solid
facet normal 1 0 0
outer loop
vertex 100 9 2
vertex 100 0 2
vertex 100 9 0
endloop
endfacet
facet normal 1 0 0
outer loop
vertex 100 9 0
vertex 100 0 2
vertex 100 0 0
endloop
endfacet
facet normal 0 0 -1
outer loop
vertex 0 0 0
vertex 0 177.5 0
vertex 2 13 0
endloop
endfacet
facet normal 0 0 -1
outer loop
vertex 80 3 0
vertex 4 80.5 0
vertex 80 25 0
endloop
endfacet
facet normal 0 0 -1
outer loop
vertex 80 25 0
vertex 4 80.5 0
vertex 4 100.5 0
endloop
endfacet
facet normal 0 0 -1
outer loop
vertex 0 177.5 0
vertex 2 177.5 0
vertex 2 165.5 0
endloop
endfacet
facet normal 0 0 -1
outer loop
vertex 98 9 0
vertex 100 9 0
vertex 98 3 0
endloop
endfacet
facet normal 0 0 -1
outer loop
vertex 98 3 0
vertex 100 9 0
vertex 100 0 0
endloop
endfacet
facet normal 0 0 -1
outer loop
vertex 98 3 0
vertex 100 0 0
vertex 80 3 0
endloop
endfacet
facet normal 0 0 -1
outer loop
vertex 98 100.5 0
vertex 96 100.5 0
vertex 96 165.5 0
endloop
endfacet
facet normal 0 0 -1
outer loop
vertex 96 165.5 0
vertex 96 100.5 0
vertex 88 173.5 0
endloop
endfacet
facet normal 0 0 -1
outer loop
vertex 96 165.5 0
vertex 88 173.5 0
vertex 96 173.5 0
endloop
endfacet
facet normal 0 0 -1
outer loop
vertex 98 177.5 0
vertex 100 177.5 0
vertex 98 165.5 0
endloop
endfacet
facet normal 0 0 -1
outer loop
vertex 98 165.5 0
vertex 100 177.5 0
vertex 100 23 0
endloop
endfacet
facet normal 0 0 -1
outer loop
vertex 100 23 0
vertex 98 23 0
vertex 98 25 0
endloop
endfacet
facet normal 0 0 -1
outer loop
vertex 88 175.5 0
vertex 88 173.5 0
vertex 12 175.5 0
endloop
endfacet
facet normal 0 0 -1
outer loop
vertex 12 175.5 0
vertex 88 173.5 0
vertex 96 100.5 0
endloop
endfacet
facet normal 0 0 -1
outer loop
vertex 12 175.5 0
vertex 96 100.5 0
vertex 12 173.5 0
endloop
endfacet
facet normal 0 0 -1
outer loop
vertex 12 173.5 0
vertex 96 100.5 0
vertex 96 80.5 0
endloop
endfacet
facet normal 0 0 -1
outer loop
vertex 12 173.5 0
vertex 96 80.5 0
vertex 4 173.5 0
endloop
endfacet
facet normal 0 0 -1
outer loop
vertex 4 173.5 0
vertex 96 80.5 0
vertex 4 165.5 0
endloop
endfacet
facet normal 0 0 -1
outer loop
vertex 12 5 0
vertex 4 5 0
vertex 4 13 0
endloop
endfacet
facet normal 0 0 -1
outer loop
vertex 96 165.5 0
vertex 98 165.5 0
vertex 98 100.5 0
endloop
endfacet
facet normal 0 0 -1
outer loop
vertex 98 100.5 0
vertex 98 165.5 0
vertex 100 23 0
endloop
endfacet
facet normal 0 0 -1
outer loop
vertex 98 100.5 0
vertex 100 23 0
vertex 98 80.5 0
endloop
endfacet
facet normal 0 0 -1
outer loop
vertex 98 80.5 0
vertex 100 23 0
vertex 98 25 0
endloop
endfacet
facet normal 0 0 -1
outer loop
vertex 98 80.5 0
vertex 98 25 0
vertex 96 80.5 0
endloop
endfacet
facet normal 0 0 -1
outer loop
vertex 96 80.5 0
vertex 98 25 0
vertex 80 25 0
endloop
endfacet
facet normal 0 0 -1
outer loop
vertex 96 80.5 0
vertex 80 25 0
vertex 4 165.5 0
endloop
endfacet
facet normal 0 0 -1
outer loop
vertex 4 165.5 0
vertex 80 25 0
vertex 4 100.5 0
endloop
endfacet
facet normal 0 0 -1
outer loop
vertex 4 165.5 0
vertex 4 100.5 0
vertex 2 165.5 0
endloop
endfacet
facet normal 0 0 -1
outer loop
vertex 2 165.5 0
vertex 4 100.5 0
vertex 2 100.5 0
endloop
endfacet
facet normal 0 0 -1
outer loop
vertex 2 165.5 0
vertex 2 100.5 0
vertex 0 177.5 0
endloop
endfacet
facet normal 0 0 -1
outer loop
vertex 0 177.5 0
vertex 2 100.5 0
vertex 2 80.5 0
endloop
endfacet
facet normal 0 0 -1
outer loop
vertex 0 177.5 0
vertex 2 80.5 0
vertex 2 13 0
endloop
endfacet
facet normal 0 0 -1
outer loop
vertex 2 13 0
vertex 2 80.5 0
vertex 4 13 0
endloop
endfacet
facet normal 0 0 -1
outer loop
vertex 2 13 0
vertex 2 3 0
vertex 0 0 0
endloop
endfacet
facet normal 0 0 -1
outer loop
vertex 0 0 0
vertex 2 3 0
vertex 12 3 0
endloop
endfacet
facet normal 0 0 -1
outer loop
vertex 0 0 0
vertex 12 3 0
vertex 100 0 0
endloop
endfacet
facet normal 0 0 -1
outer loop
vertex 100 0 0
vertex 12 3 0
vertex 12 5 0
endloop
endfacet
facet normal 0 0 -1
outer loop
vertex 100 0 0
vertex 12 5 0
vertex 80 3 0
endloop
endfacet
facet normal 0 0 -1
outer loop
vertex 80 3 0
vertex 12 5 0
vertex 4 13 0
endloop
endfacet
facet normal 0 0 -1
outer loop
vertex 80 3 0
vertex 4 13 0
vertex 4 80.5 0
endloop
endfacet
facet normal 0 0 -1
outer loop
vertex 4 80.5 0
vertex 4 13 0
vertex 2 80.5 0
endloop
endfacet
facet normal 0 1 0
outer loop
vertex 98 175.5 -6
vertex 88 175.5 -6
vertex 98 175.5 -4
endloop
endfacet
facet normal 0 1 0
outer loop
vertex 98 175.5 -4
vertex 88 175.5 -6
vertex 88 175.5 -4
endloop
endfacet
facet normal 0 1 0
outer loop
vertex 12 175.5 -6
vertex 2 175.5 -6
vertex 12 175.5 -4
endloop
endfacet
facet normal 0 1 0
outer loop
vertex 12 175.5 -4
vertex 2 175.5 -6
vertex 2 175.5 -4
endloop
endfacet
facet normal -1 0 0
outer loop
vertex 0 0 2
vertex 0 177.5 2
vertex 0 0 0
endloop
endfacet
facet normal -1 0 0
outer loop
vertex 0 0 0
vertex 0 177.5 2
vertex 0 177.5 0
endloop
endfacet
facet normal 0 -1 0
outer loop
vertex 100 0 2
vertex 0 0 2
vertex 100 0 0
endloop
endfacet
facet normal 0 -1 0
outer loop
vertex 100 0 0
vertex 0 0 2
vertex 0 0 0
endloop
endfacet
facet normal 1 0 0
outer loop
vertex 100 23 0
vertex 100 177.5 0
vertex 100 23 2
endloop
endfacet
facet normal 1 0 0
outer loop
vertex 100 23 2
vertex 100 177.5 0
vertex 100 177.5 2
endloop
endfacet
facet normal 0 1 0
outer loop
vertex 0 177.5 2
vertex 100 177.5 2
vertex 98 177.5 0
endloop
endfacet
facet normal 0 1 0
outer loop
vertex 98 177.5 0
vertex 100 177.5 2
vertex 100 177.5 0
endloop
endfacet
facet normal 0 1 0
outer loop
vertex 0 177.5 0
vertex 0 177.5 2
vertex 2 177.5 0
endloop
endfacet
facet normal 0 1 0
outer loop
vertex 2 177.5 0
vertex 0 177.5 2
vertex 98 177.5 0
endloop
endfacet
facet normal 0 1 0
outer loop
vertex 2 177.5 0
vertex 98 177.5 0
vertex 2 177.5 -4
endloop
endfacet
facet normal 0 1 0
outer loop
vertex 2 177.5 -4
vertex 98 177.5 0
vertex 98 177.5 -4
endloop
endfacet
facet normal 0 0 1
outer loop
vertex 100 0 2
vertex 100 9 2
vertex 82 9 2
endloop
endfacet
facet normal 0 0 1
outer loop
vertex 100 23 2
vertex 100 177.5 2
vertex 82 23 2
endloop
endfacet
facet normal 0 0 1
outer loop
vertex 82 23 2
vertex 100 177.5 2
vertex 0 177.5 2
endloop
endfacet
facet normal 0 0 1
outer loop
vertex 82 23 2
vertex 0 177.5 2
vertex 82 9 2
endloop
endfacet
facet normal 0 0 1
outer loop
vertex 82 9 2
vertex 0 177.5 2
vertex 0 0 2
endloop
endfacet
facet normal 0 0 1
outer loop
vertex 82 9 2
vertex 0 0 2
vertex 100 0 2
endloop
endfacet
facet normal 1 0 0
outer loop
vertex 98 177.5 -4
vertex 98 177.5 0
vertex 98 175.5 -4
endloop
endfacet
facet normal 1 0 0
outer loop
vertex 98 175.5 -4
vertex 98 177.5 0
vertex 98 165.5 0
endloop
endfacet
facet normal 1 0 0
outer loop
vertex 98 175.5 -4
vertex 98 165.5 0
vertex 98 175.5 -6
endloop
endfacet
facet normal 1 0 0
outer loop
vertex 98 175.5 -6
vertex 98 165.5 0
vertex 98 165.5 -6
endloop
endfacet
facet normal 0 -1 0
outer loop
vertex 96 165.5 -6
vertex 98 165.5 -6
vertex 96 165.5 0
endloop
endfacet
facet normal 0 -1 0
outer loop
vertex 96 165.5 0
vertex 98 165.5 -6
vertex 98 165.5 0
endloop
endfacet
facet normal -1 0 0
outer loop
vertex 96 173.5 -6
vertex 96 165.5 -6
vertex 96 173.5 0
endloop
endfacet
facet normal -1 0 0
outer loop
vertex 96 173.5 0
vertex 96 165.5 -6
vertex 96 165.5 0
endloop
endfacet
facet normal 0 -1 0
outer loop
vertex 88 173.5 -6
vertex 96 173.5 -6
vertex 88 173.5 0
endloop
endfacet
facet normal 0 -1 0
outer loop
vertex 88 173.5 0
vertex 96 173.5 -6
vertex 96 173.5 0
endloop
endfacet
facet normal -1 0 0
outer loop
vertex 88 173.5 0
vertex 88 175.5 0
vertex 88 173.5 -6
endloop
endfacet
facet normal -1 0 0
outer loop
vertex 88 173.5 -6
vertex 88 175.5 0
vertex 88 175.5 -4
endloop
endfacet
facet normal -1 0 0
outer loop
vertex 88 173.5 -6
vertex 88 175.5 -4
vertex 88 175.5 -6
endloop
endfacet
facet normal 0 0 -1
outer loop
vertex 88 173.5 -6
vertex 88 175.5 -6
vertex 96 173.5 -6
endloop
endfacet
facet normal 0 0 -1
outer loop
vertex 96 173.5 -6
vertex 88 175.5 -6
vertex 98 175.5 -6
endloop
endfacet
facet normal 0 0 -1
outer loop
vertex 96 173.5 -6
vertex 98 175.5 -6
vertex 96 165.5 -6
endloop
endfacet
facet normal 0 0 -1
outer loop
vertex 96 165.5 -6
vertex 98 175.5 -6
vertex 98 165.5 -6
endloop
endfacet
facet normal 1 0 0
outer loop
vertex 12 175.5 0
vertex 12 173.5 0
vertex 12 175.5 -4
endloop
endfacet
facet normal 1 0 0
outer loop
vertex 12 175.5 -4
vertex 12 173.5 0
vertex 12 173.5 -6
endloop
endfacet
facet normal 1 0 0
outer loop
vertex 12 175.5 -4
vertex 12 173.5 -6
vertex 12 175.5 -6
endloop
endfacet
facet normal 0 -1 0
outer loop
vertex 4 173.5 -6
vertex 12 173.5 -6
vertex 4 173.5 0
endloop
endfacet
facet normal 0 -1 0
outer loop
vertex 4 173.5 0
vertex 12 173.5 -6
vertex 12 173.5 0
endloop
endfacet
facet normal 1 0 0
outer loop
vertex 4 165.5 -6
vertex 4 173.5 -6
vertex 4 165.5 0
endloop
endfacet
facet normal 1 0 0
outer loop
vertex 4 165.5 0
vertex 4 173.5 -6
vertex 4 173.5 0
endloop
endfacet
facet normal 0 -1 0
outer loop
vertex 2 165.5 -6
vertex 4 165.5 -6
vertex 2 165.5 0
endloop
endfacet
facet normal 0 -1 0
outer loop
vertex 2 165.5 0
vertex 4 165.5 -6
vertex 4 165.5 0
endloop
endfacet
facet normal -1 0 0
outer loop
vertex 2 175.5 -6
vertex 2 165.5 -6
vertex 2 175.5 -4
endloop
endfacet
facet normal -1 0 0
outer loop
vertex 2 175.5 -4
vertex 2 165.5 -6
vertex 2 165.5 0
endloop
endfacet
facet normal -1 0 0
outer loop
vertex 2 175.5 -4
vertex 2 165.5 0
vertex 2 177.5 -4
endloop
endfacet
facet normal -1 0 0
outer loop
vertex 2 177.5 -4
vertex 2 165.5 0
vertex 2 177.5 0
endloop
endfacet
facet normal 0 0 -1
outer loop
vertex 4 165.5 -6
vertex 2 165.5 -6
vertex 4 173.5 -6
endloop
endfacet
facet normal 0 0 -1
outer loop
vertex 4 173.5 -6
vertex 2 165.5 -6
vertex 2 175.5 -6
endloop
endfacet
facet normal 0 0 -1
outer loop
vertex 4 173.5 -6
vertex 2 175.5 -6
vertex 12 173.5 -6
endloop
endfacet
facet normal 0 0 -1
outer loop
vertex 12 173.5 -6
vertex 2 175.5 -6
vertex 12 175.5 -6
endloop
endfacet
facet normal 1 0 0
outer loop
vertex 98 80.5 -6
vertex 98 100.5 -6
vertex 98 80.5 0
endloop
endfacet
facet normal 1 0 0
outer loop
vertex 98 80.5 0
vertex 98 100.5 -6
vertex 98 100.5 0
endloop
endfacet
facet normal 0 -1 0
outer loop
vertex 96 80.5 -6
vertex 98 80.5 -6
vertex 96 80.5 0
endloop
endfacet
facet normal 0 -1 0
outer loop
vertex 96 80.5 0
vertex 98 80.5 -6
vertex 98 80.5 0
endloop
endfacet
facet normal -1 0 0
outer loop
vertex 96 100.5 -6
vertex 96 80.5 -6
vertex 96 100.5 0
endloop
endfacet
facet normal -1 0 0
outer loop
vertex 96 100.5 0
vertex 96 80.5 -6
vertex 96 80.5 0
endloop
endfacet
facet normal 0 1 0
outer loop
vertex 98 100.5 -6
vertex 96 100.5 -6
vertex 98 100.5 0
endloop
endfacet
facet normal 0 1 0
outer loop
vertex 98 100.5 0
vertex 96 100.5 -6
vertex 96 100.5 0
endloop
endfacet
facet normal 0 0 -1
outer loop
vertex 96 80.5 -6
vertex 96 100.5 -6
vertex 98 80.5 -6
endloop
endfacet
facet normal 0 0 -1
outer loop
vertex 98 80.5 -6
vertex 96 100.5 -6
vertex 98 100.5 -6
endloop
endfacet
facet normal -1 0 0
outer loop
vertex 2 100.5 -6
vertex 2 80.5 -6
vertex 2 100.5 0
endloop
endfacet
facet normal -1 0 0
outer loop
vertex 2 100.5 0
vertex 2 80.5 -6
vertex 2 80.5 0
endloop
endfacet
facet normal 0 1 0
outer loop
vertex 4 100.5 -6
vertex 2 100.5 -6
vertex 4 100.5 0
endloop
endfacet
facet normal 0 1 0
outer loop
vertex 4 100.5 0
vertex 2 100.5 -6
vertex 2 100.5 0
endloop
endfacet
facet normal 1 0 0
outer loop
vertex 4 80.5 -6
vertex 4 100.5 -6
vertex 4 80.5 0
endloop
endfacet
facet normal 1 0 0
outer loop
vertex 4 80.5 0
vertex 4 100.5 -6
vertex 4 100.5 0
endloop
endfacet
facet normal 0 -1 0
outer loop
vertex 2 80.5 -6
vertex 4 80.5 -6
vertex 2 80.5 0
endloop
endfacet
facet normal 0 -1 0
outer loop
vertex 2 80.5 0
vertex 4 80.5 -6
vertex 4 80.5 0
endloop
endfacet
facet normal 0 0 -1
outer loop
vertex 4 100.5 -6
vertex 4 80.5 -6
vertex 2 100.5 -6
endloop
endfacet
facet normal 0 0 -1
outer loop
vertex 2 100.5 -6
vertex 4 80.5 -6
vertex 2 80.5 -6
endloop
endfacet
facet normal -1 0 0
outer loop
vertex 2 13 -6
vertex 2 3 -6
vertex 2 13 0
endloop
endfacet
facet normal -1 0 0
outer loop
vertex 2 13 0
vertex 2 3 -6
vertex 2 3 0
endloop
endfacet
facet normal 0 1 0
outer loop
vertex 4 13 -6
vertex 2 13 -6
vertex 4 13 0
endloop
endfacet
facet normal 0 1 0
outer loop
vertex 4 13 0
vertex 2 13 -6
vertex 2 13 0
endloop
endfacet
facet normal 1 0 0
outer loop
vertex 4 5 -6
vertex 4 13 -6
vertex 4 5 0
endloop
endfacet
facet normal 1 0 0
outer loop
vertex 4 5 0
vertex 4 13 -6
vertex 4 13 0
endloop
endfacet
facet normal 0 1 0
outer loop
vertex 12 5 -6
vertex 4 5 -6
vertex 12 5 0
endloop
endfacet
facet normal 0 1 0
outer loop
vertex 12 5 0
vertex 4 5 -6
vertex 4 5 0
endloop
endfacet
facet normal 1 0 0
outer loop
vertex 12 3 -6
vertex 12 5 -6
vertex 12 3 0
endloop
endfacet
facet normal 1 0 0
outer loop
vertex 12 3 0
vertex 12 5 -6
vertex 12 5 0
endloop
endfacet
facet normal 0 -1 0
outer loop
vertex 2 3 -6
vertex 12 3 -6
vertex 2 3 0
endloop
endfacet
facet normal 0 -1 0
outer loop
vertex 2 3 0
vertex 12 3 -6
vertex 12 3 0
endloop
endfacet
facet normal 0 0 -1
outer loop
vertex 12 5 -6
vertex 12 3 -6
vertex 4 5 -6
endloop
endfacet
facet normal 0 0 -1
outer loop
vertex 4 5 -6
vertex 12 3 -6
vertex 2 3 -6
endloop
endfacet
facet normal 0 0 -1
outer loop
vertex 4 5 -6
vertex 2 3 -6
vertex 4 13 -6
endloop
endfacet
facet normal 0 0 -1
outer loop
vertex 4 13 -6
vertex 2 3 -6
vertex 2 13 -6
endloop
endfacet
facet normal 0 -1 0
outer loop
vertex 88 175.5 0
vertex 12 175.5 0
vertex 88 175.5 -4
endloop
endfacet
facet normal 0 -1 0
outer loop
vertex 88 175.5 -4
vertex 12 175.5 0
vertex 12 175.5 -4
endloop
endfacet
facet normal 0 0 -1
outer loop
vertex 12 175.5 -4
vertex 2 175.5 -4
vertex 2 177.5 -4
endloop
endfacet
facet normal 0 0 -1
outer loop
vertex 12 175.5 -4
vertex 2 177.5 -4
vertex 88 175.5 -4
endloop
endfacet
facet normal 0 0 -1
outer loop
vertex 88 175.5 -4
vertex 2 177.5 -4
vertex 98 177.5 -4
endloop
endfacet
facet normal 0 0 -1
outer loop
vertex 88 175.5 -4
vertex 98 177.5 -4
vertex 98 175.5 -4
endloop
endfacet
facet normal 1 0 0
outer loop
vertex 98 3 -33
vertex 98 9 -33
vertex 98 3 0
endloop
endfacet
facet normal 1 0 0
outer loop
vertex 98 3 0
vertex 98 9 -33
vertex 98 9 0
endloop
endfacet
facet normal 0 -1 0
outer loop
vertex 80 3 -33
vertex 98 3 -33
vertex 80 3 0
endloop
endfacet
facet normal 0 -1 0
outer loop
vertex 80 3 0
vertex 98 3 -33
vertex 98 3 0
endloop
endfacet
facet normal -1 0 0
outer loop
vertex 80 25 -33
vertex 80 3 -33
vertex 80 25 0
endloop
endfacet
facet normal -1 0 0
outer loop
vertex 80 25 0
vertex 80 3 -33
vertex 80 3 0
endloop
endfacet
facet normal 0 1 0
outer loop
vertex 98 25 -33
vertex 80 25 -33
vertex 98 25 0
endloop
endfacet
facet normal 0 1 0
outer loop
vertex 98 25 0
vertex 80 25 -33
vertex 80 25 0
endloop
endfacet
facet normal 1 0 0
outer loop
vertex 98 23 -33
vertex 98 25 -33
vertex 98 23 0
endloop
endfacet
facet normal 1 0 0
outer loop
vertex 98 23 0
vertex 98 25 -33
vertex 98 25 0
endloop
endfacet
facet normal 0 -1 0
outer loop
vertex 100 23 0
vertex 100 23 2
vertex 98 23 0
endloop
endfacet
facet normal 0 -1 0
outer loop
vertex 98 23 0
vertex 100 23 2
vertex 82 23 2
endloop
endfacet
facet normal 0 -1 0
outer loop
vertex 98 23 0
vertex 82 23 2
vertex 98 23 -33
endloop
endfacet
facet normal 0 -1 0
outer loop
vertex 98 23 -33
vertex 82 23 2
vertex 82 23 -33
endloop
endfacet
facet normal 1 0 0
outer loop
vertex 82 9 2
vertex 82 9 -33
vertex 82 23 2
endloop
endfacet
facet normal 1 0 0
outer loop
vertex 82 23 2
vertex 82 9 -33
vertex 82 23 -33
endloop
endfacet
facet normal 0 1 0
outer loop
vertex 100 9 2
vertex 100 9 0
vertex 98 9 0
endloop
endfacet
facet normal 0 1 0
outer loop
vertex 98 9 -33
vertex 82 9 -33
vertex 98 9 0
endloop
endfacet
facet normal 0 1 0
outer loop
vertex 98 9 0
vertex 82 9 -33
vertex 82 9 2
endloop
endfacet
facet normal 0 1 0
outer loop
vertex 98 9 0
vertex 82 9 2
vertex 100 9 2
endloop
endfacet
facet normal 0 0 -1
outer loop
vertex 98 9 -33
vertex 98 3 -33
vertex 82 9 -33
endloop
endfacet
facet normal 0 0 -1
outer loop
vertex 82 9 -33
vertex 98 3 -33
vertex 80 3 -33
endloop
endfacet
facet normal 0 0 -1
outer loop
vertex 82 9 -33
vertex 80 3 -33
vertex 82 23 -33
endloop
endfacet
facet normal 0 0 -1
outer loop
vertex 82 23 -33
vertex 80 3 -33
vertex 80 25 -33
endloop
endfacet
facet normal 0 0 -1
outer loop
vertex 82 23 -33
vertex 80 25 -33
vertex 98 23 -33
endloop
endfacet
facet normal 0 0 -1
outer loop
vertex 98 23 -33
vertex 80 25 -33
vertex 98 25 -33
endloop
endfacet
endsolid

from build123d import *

# Parameters (mm, degrees)
SKETCH1_W           = 100
SKETCH1_H           = 177.5
BOSS_EXTRUDE1_DEPTH = 2
SKETCH3_W           = 2
SKETCH3_H           = 20
BOSS_EXTRUDE2_DEPTH = 6
SKETCH4_W           = 96
SKETCH4_H           = 2
BOSS_EXTRUDE3_DEPTH = 4
BOSS_EXTRUDE5_DEPTH = 33
SKETCH7_W           = 18
SKETCH7_H           = 14
CUT_EXTRUDE2_DEPTH  = 207.386167172


with BuildPart() as part:
    # Sketch1 → Boss-Extrude1 (new body)
    with BuildSketch(Plane.XY):
        with Locations((50, 88.75)):
            Rectangle(SKETCH1_W, SKETCH1_H)
    extrude(amount=BOSS_EXTRUDE1_DEPTH)

    # Sketch3 → Boss-Extrude2 (add)
    with BuildSketch(Plane(origin=(0, 0, 0), x_dir=(-1, 0, 0), z_dir=(0, 0, -1))):
        Polygon((-98, 175.5), (-88, 175.5), (-88, 173.5), (-96, 173.5), (-96, 165.5), (-98, 165.5), align=None)
        Polygon((-12, 175.5), (-2, 175.5), (-2, 165.5), (-4, 165.5), (-4, 173.5), (-12, 173.5), align=None)
        Polygon((-2, 3), (-12, 3), (-12, 5), (-4, 5), (-4, 13), (-2, 13), align=None)
        with Locations((-97, 90.5)):
            Rectangle(SKETCH3_W, SKETCH3_H)
        with Locations((-3, 90.5)):
            Rectangle(SKETCH3_W, SKETCH3_H)
    extrude(amount=BOSS_EXTRUDE2_DEPTH)

    # Sketch4 → Boss-Extrude3 (add)
    with BuildSketch(Plane(origin=(0, 0, 0), x_dir=(-1, 0, 0), z_dir=(0, 0, -1))):
        with Locations((-50, 176.5)):
            Rectangle(SKETCH4_W, SKETCH4_H)
    extrude(amount=BOSS_EXTRUDE3_DEPTH)

    # Sketch5 → Boss-Extrude5 (add)
    with BuildSketch(Plane(origin=(0, 0, 0), x_dir=(-1, 0, 0), z_dir=(0, 0, -1))):
        Polygon((-98, 3), (-80, 3), (-80, 25), (-98, 25), (-98, 23), (-82, 23), (-82, 9), (-98, 9), align=None)
    extrude(amount=BOSS_EXTRUDE5_DEPTH)

    # Sketch7 → Cut-Extrude2 (cut, through all)
    with BuildSketch(Plane(origin=(0, 0, 0), x_dir=(-1, 0, 0), z_dir=(0, 0, -1))):
        with Locations((-91, 16)):
            Rectangle(SKETCH7_W, SKETCH7_H)
    extrude(amount=-CUT_EXTRUDE2_DEPTH, mode=Mode.SUBTRACT)


solid = part.part
